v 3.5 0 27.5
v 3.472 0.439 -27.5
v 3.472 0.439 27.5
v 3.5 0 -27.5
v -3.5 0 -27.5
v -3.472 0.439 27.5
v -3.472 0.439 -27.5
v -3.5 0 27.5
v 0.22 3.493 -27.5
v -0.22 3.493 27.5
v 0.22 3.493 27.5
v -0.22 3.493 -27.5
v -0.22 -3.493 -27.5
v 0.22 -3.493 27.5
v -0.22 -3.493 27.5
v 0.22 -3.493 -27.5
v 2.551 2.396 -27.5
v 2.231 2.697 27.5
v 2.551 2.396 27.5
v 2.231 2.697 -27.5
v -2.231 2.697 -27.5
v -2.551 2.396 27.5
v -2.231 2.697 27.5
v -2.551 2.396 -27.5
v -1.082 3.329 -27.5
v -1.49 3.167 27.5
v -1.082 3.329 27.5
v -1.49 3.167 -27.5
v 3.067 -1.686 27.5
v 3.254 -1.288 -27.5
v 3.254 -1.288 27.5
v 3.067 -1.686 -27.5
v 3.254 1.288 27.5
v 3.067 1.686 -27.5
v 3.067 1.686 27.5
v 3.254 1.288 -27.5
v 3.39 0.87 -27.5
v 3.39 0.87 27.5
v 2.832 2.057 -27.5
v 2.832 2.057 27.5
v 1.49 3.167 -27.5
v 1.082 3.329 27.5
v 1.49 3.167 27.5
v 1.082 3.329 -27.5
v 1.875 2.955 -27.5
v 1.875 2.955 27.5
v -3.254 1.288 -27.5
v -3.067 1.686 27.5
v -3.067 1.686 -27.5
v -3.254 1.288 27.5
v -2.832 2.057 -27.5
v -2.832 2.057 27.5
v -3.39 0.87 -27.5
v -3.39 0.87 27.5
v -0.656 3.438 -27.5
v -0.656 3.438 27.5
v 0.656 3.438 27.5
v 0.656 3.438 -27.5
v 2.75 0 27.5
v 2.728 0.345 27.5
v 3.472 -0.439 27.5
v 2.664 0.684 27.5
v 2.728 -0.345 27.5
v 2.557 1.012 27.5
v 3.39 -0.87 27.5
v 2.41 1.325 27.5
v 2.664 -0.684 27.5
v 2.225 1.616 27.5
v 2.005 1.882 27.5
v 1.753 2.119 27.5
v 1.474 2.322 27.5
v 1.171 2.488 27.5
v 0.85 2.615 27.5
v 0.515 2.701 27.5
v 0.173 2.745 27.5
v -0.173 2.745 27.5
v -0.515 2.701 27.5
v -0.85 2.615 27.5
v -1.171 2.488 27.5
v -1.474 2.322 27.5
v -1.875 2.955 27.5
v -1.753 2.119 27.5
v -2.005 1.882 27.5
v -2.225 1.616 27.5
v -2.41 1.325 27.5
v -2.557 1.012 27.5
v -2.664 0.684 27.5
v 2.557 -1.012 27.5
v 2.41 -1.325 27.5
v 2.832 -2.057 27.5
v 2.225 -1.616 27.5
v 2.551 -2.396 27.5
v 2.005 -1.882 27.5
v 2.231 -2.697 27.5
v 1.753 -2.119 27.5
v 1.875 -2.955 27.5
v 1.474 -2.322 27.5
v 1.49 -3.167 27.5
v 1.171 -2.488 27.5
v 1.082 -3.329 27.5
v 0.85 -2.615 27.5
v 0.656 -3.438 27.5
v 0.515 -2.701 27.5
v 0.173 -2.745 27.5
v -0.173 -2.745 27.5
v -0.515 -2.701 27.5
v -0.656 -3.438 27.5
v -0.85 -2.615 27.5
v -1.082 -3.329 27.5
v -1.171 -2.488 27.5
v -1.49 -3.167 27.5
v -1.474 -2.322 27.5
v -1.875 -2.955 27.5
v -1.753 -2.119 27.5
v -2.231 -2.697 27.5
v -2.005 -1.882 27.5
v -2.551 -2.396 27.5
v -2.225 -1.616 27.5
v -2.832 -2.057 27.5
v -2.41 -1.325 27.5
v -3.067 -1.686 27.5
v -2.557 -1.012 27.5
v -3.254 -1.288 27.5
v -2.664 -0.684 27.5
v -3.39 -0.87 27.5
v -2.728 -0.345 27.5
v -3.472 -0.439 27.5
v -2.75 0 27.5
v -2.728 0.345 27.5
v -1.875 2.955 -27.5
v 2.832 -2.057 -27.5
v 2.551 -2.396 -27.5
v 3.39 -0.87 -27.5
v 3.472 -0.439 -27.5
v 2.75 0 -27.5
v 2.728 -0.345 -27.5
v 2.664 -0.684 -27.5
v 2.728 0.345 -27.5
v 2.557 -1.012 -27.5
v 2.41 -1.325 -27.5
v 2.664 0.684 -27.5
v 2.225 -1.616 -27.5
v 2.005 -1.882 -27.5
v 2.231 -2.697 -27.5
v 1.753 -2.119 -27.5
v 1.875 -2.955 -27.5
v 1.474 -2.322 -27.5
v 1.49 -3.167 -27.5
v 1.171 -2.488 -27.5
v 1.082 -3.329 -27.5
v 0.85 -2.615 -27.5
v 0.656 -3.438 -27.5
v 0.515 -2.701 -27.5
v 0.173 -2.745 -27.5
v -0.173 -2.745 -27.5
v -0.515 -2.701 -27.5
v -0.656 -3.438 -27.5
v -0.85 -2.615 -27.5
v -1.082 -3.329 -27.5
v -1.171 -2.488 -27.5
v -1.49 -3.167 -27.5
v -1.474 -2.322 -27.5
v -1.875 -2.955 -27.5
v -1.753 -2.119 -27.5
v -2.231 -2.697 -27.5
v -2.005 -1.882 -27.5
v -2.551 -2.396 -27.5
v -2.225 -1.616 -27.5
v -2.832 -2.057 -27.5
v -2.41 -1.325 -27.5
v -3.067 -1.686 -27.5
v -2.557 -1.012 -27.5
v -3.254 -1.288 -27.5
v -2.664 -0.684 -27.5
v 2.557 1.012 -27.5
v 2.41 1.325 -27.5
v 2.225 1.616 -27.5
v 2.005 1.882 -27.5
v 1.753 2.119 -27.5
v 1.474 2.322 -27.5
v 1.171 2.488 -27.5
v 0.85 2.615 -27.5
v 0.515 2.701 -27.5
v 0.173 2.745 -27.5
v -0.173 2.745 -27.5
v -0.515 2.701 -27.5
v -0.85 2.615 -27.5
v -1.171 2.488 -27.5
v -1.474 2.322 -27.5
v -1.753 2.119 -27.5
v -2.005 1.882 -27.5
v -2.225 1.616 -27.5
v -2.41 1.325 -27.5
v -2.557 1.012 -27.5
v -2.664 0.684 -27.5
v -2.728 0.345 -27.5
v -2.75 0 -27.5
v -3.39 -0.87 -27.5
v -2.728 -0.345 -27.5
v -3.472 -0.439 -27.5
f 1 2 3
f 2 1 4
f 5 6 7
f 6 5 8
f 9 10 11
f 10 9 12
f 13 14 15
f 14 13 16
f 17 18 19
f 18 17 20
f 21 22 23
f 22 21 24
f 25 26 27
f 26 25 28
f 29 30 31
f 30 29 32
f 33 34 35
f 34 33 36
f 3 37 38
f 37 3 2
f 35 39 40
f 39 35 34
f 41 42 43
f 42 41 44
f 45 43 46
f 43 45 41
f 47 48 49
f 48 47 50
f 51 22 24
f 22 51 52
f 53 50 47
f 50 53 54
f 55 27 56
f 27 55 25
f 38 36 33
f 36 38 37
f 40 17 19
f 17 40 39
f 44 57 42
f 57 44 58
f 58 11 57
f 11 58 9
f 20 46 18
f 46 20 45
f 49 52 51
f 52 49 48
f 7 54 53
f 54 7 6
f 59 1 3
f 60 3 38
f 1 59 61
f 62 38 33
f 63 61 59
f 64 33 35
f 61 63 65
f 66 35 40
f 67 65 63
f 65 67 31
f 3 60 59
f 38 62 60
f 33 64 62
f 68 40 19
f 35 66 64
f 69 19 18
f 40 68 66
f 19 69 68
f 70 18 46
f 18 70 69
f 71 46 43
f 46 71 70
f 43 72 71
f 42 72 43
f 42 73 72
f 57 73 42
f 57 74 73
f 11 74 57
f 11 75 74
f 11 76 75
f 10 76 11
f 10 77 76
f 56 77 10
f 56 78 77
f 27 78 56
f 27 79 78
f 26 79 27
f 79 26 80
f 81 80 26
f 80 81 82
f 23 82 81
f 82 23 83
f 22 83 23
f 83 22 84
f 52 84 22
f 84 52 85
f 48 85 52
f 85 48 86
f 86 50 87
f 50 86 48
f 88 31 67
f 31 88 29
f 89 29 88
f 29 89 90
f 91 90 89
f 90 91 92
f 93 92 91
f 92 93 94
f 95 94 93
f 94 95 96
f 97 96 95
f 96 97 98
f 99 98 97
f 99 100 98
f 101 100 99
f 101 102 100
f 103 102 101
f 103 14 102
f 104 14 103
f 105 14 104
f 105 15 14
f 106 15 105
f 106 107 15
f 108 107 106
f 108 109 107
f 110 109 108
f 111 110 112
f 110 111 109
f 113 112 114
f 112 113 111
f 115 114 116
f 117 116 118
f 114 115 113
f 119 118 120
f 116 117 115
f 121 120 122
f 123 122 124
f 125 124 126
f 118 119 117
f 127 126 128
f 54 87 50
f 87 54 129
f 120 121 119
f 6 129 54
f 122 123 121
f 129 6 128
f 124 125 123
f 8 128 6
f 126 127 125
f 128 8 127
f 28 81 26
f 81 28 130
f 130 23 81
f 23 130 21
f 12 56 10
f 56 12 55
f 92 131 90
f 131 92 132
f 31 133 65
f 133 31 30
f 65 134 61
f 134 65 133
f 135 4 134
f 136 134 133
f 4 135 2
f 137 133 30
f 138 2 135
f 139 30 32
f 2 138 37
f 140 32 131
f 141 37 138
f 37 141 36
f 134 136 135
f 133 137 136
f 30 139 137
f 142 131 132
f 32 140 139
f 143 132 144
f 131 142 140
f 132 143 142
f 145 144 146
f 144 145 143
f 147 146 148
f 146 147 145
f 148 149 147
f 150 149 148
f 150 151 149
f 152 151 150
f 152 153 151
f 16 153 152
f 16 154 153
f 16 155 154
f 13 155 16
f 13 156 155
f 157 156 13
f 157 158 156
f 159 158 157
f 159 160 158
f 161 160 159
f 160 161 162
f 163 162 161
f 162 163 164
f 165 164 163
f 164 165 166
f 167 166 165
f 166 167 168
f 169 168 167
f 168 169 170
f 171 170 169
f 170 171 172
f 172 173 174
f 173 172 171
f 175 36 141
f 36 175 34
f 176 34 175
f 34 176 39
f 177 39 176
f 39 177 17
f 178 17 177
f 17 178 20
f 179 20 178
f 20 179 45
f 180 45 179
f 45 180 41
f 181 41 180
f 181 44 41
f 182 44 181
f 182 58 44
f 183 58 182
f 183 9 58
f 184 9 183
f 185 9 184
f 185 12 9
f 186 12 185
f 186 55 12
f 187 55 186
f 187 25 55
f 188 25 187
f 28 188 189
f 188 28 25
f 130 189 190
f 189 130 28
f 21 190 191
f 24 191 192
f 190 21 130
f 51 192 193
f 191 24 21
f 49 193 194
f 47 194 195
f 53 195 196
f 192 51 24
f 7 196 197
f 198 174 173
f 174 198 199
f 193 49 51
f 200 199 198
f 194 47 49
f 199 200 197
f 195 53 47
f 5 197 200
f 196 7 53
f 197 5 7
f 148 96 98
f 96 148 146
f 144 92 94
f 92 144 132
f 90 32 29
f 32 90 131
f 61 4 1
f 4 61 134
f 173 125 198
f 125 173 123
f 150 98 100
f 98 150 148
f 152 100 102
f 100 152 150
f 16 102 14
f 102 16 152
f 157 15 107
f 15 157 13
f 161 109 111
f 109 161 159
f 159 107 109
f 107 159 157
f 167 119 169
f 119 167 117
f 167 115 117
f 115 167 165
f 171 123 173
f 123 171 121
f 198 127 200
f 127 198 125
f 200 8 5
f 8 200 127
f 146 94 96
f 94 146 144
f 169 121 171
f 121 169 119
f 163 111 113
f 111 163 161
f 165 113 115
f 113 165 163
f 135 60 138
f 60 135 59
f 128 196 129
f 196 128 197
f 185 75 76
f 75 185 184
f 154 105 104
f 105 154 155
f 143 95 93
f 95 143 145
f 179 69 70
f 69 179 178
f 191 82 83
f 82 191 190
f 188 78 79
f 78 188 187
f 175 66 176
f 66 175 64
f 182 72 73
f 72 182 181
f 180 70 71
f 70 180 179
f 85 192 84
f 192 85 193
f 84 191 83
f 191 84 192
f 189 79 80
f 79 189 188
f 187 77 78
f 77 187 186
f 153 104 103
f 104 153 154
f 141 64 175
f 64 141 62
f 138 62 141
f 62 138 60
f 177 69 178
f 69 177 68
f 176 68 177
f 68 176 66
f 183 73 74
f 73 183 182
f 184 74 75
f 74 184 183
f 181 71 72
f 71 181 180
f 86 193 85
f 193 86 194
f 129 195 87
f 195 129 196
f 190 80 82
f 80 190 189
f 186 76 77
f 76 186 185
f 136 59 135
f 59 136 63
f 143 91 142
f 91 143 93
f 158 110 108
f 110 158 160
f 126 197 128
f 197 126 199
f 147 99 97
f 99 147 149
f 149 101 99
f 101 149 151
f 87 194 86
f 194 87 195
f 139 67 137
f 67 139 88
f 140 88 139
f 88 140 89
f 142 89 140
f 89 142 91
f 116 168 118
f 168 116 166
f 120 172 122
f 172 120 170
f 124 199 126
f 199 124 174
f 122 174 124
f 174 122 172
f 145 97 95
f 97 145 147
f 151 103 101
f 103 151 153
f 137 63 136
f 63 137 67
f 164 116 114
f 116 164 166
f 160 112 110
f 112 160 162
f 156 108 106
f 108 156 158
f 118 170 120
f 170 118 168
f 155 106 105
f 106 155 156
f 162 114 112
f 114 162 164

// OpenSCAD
$fn = 50;


difference() {
	union() {
		translate(v = [0, 0, -27.5000000000]) {
			cylinder(h = 55, r = 3.5000000000);
		}
	}
	union() {
		translate(v = [0, 0, -100.0000000000]) {
			cylinder(h = 200, r = 2.7500000000);
		}
	}
}
